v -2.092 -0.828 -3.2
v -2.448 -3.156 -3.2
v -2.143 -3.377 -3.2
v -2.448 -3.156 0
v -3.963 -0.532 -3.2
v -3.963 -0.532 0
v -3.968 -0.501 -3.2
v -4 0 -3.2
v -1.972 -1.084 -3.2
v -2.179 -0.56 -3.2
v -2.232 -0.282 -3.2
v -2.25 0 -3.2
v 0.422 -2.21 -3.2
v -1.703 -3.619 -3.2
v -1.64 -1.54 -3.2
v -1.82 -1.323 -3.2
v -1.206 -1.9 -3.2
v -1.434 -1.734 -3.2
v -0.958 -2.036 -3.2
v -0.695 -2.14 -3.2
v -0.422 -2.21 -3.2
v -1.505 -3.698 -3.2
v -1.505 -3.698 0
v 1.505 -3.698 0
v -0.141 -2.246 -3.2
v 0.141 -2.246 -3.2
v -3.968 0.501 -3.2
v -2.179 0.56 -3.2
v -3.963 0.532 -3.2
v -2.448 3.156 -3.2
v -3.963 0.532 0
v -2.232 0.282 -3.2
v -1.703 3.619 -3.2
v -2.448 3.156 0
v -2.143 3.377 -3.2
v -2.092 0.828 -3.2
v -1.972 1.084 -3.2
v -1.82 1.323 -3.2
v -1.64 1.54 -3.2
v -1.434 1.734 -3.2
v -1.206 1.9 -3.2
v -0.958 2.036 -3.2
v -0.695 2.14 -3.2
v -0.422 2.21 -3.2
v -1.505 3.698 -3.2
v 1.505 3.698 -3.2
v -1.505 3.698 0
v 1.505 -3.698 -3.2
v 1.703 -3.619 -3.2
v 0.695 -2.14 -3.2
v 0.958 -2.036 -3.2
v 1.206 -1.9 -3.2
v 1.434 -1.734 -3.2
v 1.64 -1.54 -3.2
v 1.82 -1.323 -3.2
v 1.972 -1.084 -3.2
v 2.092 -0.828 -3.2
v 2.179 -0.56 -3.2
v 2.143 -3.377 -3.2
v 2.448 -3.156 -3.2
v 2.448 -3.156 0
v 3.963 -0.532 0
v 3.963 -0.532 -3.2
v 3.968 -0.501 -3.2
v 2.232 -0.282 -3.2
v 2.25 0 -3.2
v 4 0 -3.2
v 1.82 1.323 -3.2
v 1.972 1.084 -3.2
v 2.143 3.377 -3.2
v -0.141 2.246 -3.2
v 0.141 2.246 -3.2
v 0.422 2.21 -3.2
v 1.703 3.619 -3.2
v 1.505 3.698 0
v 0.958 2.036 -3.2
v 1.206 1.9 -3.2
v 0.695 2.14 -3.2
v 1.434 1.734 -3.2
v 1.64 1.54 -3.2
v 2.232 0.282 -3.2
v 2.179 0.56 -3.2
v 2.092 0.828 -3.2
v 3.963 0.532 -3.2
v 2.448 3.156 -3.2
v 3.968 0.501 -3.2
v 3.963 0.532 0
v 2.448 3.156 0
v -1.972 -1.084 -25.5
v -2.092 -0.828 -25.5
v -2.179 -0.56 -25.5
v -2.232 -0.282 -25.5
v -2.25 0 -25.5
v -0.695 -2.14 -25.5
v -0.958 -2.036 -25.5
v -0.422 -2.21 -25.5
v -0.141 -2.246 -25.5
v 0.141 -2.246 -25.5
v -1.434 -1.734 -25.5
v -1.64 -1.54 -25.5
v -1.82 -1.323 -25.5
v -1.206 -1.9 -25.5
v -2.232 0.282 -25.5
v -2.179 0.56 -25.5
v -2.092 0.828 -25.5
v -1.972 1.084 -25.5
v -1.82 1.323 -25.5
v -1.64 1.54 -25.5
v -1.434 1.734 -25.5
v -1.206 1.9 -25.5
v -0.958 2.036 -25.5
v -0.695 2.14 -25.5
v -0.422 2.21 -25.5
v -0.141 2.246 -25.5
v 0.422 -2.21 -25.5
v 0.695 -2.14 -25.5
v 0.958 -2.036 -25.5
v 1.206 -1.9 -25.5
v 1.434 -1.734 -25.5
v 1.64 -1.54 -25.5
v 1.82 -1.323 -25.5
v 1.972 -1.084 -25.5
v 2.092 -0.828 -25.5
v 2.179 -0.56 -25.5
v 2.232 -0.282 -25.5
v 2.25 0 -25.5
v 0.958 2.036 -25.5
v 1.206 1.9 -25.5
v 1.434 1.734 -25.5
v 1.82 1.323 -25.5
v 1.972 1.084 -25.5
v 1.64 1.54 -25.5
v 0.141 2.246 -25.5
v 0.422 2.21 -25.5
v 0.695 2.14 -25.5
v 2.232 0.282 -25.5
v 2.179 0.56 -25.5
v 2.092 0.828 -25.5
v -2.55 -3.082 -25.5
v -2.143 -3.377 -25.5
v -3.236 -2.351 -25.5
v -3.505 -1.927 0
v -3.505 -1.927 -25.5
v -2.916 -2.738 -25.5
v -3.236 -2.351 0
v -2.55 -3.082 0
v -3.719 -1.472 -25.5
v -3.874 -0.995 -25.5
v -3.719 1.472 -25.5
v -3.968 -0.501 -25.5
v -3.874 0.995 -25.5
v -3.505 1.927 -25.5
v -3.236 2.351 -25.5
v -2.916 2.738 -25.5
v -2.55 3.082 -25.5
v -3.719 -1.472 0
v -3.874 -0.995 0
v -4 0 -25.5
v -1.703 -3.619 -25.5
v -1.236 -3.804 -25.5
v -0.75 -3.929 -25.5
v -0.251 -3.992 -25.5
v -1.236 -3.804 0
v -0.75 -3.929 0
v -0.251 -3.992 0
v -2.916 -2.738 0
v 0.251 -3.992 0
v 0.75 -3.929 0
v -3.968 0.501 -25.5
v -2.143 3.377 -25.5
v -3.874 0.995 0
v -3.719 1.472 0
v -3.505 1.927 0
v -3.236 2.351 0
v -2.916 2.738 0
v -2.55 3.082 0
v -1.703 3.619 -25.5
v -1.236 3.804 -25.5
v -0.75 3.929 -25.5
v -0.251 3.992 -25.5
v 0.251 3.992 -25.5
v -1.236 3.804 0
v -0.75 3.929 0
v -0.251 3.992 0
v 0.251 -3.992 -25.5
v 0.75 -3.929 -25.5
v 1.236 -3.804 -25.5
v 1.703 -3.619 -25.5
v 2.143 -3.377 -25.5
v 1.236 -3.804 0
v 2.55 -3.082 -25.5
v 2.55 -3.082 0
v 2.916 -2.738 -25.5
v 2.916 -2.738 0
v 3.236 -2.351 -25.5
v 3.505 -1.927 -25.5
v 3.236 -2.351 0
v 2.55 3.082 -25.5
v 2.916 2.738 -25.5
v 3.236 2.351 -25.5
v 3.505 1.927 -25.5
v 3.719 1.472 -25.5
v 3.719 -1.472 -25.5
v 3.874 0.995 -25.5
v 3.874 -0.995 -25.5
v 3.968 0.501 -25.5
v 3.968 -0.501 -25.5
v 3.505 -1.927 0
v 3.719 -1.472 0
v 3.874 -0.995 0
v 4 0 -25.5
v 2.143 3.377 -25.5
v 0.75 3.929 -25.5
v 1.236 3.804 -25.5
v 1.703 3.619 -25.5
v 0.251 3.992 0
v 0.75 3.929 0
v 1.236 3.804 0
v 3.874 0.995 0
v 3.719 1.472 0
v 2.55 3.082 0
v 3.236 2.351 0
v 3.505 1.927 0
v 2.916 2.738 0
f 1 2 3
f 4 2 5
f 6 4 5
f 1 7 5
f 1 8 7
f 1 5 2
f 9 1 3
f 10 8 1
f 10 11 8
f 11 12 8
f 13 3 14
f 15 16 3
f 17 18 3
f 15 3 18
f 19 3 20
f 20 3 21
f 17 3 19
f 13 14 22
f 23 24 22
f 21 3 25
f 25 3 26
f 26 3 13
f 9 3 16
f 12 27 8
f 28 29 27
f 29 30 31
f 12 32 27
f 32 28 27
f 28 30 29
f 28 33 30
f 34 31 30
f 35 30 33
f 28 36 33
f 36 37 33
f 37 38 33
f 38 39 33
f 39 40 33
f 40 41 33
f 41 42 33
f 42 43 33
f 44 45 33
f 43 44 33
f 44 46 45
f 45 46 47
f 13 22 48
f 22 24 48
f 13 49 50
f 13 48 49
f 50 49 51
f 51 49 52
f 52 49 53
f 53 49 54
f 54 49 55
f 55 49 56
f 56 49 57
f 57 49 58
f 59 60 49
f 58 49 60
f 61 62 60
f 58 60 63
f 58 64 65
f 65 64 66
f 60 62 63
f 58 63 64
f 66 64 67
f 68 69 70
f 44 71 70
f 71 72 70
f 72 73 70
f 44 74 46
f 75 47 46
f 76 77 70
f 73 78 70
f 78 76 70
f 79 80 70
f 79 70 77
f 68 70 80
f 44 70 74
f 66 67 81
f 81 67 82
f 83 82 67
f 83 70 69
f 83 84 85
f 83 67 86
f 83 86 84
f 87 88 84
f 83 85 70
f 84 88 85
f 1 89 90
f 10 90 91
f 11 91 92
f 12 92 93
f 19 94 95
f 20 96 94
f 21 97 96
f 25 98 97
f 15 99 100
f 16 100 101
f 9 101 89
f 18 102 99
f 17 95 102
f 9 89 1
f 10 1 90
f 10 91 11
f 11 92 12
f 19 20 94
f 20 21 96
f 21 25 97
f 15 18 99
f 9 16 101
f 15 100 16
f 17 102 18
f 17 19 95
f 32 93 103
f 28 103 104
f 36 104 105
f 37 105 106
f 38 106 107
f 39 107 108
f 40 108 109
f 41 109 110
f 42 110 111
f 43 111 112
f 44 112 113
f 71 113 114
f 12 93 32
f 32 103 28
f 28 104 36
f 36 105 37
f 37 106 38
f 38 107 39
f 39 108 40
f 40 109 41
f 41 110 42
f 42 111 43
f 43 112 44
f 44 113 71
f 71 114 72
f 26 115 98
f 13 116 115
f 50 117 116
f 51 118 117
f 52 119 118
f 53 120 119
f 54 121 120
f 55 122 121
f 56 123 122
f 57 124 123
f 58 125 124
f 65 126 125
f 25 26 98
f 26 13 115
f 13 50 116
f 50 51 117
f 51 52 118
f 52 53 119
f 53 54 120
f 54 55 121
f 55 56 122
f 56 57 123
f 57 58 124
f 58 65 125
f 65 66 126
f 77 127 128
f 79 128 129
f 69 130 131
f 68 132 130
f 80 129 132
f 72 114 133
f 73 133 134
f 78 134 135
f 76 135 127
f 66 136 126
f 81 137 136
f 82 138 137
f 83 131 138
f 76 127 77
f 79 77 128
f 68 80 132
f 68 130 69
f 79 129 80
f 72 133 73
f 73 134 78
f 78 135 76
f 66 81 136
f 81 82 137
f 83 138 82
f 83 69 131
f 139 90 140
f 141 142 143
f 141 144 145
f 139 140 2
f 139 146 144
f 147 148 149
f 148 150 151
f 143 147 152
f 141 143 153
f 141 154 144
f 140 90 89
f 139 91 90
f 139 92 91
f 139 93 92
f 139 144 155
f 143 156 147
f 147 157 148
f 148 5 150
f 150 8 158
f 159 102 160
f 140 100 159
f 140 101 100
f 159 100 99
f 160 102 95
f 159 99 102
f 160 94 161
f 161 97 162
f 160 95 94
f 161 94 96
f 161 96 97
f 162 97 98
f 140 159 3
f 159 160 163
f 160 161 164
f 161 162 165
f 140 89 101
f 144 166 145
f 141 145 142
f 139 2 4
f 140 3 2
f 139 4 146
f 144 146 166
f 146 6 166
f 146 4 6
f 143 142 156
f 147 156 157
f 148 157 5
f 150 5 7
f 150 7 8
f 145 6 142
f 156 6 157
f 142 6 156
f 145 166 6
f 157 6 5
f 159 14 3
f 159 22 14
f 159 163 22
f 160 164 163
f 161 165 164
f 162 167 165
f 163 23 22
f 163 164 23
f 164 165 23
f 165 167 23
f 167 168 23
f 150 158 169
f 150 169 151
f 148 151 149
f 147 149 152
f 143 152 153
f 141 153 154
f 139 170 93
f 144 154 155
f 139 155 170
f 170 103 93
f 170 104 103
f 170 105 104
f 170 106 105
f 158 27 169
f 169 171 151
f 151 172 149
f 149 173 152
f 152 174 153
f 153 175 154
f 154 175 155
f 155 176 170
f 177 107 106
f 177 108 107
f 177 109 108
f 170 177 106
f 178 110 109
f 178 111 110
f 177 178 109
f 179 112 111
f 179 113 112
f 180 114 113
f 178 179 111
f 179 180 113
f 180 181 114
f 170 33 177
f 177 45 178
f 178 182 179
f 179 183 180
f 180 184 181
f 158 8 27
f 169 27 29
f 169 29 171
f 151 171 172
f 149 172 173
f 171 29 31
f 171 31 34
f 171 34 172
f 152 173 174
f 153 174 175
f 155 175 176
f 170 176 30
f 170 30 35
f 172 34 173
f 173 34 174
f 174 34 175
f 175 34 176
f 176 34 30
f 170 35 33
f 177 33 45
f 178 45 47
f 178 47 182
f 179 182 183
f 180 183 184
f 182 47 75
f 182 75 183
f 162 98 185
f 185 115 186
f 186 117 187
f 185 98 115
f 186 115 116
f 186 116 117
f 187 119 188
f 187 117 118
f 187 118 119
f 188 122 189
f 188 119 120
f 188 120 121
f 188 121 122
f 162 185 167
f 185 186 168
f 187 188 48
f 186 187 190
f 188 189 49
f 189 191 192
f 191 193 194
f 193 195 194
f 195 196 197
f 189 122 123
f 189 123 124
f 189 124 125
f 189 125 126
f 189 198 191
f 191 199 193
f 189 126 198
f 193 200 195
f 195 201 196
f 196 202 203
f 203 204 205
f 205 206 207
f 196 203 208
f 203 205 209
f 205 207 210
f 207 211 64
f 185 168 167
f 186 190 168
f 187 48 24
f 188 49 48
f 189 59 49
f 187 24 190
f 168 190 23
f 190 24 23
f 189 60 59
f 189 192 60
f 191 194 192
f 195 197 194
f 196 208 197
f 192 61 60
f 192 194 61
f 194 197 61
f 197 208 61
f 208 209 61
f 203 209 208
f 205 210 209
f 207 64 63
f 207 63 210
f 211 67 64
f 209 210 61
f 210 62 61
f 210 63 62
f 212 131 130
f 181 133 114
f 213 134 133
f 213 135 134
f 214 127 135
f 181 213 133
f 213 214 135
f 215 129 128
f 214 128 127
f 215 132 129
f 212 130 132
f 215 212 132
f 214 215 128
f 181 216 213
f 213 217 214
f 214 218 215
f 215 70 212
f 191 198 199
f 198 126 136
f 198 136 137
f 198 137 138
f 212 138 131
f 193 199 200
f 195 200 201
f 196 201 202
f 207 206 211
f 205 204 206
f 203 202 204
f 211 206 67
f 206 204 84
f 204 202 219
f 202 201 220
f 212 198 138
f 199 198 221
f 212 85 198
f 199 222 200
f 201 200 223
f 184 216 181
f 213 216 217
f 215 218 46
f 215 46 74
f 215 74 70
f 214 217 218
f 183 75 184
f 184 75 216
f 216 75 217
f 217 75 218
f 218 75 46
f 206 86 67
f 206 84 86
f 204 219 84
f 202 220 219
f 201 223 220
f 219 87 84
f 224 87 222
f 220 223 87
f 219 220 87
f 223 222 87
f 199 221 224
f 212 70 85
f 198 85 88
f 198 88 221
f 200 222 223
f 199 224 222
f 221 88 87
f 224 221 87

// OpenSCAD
$fn = 50;

difference() {
	union() {
		translate(v = [0, 0, -25.5]) {
			cylinder(h = 25.5, r = 4.0);
		}
	}
	union() {
		translate(v = [0, 0, 0]) {
			rotate(a = [0, 0, 0]) {
				difference() {
					union() {
						translate(v = [0, 0, -3.2]) {
							linear_extrude(height = 3.2) {
								polygon(points = [[4.2698, 0.0], [2.1349000000000005, 3.697755269078796], [-2.134899999999999, 3.6977552690787965], [-4.2698, 5.228996902999369e-16], [-2.134900000000002, -3.6977552690787956], [2.1348999999999974, -3.697755269078798]]);
							}
						}
					}
					union();
				}
			}
		}
		#translate(v = [0, 0, -100.0]) {
			cylinder(h = 200, r = 2.25);
		}
	}
}
